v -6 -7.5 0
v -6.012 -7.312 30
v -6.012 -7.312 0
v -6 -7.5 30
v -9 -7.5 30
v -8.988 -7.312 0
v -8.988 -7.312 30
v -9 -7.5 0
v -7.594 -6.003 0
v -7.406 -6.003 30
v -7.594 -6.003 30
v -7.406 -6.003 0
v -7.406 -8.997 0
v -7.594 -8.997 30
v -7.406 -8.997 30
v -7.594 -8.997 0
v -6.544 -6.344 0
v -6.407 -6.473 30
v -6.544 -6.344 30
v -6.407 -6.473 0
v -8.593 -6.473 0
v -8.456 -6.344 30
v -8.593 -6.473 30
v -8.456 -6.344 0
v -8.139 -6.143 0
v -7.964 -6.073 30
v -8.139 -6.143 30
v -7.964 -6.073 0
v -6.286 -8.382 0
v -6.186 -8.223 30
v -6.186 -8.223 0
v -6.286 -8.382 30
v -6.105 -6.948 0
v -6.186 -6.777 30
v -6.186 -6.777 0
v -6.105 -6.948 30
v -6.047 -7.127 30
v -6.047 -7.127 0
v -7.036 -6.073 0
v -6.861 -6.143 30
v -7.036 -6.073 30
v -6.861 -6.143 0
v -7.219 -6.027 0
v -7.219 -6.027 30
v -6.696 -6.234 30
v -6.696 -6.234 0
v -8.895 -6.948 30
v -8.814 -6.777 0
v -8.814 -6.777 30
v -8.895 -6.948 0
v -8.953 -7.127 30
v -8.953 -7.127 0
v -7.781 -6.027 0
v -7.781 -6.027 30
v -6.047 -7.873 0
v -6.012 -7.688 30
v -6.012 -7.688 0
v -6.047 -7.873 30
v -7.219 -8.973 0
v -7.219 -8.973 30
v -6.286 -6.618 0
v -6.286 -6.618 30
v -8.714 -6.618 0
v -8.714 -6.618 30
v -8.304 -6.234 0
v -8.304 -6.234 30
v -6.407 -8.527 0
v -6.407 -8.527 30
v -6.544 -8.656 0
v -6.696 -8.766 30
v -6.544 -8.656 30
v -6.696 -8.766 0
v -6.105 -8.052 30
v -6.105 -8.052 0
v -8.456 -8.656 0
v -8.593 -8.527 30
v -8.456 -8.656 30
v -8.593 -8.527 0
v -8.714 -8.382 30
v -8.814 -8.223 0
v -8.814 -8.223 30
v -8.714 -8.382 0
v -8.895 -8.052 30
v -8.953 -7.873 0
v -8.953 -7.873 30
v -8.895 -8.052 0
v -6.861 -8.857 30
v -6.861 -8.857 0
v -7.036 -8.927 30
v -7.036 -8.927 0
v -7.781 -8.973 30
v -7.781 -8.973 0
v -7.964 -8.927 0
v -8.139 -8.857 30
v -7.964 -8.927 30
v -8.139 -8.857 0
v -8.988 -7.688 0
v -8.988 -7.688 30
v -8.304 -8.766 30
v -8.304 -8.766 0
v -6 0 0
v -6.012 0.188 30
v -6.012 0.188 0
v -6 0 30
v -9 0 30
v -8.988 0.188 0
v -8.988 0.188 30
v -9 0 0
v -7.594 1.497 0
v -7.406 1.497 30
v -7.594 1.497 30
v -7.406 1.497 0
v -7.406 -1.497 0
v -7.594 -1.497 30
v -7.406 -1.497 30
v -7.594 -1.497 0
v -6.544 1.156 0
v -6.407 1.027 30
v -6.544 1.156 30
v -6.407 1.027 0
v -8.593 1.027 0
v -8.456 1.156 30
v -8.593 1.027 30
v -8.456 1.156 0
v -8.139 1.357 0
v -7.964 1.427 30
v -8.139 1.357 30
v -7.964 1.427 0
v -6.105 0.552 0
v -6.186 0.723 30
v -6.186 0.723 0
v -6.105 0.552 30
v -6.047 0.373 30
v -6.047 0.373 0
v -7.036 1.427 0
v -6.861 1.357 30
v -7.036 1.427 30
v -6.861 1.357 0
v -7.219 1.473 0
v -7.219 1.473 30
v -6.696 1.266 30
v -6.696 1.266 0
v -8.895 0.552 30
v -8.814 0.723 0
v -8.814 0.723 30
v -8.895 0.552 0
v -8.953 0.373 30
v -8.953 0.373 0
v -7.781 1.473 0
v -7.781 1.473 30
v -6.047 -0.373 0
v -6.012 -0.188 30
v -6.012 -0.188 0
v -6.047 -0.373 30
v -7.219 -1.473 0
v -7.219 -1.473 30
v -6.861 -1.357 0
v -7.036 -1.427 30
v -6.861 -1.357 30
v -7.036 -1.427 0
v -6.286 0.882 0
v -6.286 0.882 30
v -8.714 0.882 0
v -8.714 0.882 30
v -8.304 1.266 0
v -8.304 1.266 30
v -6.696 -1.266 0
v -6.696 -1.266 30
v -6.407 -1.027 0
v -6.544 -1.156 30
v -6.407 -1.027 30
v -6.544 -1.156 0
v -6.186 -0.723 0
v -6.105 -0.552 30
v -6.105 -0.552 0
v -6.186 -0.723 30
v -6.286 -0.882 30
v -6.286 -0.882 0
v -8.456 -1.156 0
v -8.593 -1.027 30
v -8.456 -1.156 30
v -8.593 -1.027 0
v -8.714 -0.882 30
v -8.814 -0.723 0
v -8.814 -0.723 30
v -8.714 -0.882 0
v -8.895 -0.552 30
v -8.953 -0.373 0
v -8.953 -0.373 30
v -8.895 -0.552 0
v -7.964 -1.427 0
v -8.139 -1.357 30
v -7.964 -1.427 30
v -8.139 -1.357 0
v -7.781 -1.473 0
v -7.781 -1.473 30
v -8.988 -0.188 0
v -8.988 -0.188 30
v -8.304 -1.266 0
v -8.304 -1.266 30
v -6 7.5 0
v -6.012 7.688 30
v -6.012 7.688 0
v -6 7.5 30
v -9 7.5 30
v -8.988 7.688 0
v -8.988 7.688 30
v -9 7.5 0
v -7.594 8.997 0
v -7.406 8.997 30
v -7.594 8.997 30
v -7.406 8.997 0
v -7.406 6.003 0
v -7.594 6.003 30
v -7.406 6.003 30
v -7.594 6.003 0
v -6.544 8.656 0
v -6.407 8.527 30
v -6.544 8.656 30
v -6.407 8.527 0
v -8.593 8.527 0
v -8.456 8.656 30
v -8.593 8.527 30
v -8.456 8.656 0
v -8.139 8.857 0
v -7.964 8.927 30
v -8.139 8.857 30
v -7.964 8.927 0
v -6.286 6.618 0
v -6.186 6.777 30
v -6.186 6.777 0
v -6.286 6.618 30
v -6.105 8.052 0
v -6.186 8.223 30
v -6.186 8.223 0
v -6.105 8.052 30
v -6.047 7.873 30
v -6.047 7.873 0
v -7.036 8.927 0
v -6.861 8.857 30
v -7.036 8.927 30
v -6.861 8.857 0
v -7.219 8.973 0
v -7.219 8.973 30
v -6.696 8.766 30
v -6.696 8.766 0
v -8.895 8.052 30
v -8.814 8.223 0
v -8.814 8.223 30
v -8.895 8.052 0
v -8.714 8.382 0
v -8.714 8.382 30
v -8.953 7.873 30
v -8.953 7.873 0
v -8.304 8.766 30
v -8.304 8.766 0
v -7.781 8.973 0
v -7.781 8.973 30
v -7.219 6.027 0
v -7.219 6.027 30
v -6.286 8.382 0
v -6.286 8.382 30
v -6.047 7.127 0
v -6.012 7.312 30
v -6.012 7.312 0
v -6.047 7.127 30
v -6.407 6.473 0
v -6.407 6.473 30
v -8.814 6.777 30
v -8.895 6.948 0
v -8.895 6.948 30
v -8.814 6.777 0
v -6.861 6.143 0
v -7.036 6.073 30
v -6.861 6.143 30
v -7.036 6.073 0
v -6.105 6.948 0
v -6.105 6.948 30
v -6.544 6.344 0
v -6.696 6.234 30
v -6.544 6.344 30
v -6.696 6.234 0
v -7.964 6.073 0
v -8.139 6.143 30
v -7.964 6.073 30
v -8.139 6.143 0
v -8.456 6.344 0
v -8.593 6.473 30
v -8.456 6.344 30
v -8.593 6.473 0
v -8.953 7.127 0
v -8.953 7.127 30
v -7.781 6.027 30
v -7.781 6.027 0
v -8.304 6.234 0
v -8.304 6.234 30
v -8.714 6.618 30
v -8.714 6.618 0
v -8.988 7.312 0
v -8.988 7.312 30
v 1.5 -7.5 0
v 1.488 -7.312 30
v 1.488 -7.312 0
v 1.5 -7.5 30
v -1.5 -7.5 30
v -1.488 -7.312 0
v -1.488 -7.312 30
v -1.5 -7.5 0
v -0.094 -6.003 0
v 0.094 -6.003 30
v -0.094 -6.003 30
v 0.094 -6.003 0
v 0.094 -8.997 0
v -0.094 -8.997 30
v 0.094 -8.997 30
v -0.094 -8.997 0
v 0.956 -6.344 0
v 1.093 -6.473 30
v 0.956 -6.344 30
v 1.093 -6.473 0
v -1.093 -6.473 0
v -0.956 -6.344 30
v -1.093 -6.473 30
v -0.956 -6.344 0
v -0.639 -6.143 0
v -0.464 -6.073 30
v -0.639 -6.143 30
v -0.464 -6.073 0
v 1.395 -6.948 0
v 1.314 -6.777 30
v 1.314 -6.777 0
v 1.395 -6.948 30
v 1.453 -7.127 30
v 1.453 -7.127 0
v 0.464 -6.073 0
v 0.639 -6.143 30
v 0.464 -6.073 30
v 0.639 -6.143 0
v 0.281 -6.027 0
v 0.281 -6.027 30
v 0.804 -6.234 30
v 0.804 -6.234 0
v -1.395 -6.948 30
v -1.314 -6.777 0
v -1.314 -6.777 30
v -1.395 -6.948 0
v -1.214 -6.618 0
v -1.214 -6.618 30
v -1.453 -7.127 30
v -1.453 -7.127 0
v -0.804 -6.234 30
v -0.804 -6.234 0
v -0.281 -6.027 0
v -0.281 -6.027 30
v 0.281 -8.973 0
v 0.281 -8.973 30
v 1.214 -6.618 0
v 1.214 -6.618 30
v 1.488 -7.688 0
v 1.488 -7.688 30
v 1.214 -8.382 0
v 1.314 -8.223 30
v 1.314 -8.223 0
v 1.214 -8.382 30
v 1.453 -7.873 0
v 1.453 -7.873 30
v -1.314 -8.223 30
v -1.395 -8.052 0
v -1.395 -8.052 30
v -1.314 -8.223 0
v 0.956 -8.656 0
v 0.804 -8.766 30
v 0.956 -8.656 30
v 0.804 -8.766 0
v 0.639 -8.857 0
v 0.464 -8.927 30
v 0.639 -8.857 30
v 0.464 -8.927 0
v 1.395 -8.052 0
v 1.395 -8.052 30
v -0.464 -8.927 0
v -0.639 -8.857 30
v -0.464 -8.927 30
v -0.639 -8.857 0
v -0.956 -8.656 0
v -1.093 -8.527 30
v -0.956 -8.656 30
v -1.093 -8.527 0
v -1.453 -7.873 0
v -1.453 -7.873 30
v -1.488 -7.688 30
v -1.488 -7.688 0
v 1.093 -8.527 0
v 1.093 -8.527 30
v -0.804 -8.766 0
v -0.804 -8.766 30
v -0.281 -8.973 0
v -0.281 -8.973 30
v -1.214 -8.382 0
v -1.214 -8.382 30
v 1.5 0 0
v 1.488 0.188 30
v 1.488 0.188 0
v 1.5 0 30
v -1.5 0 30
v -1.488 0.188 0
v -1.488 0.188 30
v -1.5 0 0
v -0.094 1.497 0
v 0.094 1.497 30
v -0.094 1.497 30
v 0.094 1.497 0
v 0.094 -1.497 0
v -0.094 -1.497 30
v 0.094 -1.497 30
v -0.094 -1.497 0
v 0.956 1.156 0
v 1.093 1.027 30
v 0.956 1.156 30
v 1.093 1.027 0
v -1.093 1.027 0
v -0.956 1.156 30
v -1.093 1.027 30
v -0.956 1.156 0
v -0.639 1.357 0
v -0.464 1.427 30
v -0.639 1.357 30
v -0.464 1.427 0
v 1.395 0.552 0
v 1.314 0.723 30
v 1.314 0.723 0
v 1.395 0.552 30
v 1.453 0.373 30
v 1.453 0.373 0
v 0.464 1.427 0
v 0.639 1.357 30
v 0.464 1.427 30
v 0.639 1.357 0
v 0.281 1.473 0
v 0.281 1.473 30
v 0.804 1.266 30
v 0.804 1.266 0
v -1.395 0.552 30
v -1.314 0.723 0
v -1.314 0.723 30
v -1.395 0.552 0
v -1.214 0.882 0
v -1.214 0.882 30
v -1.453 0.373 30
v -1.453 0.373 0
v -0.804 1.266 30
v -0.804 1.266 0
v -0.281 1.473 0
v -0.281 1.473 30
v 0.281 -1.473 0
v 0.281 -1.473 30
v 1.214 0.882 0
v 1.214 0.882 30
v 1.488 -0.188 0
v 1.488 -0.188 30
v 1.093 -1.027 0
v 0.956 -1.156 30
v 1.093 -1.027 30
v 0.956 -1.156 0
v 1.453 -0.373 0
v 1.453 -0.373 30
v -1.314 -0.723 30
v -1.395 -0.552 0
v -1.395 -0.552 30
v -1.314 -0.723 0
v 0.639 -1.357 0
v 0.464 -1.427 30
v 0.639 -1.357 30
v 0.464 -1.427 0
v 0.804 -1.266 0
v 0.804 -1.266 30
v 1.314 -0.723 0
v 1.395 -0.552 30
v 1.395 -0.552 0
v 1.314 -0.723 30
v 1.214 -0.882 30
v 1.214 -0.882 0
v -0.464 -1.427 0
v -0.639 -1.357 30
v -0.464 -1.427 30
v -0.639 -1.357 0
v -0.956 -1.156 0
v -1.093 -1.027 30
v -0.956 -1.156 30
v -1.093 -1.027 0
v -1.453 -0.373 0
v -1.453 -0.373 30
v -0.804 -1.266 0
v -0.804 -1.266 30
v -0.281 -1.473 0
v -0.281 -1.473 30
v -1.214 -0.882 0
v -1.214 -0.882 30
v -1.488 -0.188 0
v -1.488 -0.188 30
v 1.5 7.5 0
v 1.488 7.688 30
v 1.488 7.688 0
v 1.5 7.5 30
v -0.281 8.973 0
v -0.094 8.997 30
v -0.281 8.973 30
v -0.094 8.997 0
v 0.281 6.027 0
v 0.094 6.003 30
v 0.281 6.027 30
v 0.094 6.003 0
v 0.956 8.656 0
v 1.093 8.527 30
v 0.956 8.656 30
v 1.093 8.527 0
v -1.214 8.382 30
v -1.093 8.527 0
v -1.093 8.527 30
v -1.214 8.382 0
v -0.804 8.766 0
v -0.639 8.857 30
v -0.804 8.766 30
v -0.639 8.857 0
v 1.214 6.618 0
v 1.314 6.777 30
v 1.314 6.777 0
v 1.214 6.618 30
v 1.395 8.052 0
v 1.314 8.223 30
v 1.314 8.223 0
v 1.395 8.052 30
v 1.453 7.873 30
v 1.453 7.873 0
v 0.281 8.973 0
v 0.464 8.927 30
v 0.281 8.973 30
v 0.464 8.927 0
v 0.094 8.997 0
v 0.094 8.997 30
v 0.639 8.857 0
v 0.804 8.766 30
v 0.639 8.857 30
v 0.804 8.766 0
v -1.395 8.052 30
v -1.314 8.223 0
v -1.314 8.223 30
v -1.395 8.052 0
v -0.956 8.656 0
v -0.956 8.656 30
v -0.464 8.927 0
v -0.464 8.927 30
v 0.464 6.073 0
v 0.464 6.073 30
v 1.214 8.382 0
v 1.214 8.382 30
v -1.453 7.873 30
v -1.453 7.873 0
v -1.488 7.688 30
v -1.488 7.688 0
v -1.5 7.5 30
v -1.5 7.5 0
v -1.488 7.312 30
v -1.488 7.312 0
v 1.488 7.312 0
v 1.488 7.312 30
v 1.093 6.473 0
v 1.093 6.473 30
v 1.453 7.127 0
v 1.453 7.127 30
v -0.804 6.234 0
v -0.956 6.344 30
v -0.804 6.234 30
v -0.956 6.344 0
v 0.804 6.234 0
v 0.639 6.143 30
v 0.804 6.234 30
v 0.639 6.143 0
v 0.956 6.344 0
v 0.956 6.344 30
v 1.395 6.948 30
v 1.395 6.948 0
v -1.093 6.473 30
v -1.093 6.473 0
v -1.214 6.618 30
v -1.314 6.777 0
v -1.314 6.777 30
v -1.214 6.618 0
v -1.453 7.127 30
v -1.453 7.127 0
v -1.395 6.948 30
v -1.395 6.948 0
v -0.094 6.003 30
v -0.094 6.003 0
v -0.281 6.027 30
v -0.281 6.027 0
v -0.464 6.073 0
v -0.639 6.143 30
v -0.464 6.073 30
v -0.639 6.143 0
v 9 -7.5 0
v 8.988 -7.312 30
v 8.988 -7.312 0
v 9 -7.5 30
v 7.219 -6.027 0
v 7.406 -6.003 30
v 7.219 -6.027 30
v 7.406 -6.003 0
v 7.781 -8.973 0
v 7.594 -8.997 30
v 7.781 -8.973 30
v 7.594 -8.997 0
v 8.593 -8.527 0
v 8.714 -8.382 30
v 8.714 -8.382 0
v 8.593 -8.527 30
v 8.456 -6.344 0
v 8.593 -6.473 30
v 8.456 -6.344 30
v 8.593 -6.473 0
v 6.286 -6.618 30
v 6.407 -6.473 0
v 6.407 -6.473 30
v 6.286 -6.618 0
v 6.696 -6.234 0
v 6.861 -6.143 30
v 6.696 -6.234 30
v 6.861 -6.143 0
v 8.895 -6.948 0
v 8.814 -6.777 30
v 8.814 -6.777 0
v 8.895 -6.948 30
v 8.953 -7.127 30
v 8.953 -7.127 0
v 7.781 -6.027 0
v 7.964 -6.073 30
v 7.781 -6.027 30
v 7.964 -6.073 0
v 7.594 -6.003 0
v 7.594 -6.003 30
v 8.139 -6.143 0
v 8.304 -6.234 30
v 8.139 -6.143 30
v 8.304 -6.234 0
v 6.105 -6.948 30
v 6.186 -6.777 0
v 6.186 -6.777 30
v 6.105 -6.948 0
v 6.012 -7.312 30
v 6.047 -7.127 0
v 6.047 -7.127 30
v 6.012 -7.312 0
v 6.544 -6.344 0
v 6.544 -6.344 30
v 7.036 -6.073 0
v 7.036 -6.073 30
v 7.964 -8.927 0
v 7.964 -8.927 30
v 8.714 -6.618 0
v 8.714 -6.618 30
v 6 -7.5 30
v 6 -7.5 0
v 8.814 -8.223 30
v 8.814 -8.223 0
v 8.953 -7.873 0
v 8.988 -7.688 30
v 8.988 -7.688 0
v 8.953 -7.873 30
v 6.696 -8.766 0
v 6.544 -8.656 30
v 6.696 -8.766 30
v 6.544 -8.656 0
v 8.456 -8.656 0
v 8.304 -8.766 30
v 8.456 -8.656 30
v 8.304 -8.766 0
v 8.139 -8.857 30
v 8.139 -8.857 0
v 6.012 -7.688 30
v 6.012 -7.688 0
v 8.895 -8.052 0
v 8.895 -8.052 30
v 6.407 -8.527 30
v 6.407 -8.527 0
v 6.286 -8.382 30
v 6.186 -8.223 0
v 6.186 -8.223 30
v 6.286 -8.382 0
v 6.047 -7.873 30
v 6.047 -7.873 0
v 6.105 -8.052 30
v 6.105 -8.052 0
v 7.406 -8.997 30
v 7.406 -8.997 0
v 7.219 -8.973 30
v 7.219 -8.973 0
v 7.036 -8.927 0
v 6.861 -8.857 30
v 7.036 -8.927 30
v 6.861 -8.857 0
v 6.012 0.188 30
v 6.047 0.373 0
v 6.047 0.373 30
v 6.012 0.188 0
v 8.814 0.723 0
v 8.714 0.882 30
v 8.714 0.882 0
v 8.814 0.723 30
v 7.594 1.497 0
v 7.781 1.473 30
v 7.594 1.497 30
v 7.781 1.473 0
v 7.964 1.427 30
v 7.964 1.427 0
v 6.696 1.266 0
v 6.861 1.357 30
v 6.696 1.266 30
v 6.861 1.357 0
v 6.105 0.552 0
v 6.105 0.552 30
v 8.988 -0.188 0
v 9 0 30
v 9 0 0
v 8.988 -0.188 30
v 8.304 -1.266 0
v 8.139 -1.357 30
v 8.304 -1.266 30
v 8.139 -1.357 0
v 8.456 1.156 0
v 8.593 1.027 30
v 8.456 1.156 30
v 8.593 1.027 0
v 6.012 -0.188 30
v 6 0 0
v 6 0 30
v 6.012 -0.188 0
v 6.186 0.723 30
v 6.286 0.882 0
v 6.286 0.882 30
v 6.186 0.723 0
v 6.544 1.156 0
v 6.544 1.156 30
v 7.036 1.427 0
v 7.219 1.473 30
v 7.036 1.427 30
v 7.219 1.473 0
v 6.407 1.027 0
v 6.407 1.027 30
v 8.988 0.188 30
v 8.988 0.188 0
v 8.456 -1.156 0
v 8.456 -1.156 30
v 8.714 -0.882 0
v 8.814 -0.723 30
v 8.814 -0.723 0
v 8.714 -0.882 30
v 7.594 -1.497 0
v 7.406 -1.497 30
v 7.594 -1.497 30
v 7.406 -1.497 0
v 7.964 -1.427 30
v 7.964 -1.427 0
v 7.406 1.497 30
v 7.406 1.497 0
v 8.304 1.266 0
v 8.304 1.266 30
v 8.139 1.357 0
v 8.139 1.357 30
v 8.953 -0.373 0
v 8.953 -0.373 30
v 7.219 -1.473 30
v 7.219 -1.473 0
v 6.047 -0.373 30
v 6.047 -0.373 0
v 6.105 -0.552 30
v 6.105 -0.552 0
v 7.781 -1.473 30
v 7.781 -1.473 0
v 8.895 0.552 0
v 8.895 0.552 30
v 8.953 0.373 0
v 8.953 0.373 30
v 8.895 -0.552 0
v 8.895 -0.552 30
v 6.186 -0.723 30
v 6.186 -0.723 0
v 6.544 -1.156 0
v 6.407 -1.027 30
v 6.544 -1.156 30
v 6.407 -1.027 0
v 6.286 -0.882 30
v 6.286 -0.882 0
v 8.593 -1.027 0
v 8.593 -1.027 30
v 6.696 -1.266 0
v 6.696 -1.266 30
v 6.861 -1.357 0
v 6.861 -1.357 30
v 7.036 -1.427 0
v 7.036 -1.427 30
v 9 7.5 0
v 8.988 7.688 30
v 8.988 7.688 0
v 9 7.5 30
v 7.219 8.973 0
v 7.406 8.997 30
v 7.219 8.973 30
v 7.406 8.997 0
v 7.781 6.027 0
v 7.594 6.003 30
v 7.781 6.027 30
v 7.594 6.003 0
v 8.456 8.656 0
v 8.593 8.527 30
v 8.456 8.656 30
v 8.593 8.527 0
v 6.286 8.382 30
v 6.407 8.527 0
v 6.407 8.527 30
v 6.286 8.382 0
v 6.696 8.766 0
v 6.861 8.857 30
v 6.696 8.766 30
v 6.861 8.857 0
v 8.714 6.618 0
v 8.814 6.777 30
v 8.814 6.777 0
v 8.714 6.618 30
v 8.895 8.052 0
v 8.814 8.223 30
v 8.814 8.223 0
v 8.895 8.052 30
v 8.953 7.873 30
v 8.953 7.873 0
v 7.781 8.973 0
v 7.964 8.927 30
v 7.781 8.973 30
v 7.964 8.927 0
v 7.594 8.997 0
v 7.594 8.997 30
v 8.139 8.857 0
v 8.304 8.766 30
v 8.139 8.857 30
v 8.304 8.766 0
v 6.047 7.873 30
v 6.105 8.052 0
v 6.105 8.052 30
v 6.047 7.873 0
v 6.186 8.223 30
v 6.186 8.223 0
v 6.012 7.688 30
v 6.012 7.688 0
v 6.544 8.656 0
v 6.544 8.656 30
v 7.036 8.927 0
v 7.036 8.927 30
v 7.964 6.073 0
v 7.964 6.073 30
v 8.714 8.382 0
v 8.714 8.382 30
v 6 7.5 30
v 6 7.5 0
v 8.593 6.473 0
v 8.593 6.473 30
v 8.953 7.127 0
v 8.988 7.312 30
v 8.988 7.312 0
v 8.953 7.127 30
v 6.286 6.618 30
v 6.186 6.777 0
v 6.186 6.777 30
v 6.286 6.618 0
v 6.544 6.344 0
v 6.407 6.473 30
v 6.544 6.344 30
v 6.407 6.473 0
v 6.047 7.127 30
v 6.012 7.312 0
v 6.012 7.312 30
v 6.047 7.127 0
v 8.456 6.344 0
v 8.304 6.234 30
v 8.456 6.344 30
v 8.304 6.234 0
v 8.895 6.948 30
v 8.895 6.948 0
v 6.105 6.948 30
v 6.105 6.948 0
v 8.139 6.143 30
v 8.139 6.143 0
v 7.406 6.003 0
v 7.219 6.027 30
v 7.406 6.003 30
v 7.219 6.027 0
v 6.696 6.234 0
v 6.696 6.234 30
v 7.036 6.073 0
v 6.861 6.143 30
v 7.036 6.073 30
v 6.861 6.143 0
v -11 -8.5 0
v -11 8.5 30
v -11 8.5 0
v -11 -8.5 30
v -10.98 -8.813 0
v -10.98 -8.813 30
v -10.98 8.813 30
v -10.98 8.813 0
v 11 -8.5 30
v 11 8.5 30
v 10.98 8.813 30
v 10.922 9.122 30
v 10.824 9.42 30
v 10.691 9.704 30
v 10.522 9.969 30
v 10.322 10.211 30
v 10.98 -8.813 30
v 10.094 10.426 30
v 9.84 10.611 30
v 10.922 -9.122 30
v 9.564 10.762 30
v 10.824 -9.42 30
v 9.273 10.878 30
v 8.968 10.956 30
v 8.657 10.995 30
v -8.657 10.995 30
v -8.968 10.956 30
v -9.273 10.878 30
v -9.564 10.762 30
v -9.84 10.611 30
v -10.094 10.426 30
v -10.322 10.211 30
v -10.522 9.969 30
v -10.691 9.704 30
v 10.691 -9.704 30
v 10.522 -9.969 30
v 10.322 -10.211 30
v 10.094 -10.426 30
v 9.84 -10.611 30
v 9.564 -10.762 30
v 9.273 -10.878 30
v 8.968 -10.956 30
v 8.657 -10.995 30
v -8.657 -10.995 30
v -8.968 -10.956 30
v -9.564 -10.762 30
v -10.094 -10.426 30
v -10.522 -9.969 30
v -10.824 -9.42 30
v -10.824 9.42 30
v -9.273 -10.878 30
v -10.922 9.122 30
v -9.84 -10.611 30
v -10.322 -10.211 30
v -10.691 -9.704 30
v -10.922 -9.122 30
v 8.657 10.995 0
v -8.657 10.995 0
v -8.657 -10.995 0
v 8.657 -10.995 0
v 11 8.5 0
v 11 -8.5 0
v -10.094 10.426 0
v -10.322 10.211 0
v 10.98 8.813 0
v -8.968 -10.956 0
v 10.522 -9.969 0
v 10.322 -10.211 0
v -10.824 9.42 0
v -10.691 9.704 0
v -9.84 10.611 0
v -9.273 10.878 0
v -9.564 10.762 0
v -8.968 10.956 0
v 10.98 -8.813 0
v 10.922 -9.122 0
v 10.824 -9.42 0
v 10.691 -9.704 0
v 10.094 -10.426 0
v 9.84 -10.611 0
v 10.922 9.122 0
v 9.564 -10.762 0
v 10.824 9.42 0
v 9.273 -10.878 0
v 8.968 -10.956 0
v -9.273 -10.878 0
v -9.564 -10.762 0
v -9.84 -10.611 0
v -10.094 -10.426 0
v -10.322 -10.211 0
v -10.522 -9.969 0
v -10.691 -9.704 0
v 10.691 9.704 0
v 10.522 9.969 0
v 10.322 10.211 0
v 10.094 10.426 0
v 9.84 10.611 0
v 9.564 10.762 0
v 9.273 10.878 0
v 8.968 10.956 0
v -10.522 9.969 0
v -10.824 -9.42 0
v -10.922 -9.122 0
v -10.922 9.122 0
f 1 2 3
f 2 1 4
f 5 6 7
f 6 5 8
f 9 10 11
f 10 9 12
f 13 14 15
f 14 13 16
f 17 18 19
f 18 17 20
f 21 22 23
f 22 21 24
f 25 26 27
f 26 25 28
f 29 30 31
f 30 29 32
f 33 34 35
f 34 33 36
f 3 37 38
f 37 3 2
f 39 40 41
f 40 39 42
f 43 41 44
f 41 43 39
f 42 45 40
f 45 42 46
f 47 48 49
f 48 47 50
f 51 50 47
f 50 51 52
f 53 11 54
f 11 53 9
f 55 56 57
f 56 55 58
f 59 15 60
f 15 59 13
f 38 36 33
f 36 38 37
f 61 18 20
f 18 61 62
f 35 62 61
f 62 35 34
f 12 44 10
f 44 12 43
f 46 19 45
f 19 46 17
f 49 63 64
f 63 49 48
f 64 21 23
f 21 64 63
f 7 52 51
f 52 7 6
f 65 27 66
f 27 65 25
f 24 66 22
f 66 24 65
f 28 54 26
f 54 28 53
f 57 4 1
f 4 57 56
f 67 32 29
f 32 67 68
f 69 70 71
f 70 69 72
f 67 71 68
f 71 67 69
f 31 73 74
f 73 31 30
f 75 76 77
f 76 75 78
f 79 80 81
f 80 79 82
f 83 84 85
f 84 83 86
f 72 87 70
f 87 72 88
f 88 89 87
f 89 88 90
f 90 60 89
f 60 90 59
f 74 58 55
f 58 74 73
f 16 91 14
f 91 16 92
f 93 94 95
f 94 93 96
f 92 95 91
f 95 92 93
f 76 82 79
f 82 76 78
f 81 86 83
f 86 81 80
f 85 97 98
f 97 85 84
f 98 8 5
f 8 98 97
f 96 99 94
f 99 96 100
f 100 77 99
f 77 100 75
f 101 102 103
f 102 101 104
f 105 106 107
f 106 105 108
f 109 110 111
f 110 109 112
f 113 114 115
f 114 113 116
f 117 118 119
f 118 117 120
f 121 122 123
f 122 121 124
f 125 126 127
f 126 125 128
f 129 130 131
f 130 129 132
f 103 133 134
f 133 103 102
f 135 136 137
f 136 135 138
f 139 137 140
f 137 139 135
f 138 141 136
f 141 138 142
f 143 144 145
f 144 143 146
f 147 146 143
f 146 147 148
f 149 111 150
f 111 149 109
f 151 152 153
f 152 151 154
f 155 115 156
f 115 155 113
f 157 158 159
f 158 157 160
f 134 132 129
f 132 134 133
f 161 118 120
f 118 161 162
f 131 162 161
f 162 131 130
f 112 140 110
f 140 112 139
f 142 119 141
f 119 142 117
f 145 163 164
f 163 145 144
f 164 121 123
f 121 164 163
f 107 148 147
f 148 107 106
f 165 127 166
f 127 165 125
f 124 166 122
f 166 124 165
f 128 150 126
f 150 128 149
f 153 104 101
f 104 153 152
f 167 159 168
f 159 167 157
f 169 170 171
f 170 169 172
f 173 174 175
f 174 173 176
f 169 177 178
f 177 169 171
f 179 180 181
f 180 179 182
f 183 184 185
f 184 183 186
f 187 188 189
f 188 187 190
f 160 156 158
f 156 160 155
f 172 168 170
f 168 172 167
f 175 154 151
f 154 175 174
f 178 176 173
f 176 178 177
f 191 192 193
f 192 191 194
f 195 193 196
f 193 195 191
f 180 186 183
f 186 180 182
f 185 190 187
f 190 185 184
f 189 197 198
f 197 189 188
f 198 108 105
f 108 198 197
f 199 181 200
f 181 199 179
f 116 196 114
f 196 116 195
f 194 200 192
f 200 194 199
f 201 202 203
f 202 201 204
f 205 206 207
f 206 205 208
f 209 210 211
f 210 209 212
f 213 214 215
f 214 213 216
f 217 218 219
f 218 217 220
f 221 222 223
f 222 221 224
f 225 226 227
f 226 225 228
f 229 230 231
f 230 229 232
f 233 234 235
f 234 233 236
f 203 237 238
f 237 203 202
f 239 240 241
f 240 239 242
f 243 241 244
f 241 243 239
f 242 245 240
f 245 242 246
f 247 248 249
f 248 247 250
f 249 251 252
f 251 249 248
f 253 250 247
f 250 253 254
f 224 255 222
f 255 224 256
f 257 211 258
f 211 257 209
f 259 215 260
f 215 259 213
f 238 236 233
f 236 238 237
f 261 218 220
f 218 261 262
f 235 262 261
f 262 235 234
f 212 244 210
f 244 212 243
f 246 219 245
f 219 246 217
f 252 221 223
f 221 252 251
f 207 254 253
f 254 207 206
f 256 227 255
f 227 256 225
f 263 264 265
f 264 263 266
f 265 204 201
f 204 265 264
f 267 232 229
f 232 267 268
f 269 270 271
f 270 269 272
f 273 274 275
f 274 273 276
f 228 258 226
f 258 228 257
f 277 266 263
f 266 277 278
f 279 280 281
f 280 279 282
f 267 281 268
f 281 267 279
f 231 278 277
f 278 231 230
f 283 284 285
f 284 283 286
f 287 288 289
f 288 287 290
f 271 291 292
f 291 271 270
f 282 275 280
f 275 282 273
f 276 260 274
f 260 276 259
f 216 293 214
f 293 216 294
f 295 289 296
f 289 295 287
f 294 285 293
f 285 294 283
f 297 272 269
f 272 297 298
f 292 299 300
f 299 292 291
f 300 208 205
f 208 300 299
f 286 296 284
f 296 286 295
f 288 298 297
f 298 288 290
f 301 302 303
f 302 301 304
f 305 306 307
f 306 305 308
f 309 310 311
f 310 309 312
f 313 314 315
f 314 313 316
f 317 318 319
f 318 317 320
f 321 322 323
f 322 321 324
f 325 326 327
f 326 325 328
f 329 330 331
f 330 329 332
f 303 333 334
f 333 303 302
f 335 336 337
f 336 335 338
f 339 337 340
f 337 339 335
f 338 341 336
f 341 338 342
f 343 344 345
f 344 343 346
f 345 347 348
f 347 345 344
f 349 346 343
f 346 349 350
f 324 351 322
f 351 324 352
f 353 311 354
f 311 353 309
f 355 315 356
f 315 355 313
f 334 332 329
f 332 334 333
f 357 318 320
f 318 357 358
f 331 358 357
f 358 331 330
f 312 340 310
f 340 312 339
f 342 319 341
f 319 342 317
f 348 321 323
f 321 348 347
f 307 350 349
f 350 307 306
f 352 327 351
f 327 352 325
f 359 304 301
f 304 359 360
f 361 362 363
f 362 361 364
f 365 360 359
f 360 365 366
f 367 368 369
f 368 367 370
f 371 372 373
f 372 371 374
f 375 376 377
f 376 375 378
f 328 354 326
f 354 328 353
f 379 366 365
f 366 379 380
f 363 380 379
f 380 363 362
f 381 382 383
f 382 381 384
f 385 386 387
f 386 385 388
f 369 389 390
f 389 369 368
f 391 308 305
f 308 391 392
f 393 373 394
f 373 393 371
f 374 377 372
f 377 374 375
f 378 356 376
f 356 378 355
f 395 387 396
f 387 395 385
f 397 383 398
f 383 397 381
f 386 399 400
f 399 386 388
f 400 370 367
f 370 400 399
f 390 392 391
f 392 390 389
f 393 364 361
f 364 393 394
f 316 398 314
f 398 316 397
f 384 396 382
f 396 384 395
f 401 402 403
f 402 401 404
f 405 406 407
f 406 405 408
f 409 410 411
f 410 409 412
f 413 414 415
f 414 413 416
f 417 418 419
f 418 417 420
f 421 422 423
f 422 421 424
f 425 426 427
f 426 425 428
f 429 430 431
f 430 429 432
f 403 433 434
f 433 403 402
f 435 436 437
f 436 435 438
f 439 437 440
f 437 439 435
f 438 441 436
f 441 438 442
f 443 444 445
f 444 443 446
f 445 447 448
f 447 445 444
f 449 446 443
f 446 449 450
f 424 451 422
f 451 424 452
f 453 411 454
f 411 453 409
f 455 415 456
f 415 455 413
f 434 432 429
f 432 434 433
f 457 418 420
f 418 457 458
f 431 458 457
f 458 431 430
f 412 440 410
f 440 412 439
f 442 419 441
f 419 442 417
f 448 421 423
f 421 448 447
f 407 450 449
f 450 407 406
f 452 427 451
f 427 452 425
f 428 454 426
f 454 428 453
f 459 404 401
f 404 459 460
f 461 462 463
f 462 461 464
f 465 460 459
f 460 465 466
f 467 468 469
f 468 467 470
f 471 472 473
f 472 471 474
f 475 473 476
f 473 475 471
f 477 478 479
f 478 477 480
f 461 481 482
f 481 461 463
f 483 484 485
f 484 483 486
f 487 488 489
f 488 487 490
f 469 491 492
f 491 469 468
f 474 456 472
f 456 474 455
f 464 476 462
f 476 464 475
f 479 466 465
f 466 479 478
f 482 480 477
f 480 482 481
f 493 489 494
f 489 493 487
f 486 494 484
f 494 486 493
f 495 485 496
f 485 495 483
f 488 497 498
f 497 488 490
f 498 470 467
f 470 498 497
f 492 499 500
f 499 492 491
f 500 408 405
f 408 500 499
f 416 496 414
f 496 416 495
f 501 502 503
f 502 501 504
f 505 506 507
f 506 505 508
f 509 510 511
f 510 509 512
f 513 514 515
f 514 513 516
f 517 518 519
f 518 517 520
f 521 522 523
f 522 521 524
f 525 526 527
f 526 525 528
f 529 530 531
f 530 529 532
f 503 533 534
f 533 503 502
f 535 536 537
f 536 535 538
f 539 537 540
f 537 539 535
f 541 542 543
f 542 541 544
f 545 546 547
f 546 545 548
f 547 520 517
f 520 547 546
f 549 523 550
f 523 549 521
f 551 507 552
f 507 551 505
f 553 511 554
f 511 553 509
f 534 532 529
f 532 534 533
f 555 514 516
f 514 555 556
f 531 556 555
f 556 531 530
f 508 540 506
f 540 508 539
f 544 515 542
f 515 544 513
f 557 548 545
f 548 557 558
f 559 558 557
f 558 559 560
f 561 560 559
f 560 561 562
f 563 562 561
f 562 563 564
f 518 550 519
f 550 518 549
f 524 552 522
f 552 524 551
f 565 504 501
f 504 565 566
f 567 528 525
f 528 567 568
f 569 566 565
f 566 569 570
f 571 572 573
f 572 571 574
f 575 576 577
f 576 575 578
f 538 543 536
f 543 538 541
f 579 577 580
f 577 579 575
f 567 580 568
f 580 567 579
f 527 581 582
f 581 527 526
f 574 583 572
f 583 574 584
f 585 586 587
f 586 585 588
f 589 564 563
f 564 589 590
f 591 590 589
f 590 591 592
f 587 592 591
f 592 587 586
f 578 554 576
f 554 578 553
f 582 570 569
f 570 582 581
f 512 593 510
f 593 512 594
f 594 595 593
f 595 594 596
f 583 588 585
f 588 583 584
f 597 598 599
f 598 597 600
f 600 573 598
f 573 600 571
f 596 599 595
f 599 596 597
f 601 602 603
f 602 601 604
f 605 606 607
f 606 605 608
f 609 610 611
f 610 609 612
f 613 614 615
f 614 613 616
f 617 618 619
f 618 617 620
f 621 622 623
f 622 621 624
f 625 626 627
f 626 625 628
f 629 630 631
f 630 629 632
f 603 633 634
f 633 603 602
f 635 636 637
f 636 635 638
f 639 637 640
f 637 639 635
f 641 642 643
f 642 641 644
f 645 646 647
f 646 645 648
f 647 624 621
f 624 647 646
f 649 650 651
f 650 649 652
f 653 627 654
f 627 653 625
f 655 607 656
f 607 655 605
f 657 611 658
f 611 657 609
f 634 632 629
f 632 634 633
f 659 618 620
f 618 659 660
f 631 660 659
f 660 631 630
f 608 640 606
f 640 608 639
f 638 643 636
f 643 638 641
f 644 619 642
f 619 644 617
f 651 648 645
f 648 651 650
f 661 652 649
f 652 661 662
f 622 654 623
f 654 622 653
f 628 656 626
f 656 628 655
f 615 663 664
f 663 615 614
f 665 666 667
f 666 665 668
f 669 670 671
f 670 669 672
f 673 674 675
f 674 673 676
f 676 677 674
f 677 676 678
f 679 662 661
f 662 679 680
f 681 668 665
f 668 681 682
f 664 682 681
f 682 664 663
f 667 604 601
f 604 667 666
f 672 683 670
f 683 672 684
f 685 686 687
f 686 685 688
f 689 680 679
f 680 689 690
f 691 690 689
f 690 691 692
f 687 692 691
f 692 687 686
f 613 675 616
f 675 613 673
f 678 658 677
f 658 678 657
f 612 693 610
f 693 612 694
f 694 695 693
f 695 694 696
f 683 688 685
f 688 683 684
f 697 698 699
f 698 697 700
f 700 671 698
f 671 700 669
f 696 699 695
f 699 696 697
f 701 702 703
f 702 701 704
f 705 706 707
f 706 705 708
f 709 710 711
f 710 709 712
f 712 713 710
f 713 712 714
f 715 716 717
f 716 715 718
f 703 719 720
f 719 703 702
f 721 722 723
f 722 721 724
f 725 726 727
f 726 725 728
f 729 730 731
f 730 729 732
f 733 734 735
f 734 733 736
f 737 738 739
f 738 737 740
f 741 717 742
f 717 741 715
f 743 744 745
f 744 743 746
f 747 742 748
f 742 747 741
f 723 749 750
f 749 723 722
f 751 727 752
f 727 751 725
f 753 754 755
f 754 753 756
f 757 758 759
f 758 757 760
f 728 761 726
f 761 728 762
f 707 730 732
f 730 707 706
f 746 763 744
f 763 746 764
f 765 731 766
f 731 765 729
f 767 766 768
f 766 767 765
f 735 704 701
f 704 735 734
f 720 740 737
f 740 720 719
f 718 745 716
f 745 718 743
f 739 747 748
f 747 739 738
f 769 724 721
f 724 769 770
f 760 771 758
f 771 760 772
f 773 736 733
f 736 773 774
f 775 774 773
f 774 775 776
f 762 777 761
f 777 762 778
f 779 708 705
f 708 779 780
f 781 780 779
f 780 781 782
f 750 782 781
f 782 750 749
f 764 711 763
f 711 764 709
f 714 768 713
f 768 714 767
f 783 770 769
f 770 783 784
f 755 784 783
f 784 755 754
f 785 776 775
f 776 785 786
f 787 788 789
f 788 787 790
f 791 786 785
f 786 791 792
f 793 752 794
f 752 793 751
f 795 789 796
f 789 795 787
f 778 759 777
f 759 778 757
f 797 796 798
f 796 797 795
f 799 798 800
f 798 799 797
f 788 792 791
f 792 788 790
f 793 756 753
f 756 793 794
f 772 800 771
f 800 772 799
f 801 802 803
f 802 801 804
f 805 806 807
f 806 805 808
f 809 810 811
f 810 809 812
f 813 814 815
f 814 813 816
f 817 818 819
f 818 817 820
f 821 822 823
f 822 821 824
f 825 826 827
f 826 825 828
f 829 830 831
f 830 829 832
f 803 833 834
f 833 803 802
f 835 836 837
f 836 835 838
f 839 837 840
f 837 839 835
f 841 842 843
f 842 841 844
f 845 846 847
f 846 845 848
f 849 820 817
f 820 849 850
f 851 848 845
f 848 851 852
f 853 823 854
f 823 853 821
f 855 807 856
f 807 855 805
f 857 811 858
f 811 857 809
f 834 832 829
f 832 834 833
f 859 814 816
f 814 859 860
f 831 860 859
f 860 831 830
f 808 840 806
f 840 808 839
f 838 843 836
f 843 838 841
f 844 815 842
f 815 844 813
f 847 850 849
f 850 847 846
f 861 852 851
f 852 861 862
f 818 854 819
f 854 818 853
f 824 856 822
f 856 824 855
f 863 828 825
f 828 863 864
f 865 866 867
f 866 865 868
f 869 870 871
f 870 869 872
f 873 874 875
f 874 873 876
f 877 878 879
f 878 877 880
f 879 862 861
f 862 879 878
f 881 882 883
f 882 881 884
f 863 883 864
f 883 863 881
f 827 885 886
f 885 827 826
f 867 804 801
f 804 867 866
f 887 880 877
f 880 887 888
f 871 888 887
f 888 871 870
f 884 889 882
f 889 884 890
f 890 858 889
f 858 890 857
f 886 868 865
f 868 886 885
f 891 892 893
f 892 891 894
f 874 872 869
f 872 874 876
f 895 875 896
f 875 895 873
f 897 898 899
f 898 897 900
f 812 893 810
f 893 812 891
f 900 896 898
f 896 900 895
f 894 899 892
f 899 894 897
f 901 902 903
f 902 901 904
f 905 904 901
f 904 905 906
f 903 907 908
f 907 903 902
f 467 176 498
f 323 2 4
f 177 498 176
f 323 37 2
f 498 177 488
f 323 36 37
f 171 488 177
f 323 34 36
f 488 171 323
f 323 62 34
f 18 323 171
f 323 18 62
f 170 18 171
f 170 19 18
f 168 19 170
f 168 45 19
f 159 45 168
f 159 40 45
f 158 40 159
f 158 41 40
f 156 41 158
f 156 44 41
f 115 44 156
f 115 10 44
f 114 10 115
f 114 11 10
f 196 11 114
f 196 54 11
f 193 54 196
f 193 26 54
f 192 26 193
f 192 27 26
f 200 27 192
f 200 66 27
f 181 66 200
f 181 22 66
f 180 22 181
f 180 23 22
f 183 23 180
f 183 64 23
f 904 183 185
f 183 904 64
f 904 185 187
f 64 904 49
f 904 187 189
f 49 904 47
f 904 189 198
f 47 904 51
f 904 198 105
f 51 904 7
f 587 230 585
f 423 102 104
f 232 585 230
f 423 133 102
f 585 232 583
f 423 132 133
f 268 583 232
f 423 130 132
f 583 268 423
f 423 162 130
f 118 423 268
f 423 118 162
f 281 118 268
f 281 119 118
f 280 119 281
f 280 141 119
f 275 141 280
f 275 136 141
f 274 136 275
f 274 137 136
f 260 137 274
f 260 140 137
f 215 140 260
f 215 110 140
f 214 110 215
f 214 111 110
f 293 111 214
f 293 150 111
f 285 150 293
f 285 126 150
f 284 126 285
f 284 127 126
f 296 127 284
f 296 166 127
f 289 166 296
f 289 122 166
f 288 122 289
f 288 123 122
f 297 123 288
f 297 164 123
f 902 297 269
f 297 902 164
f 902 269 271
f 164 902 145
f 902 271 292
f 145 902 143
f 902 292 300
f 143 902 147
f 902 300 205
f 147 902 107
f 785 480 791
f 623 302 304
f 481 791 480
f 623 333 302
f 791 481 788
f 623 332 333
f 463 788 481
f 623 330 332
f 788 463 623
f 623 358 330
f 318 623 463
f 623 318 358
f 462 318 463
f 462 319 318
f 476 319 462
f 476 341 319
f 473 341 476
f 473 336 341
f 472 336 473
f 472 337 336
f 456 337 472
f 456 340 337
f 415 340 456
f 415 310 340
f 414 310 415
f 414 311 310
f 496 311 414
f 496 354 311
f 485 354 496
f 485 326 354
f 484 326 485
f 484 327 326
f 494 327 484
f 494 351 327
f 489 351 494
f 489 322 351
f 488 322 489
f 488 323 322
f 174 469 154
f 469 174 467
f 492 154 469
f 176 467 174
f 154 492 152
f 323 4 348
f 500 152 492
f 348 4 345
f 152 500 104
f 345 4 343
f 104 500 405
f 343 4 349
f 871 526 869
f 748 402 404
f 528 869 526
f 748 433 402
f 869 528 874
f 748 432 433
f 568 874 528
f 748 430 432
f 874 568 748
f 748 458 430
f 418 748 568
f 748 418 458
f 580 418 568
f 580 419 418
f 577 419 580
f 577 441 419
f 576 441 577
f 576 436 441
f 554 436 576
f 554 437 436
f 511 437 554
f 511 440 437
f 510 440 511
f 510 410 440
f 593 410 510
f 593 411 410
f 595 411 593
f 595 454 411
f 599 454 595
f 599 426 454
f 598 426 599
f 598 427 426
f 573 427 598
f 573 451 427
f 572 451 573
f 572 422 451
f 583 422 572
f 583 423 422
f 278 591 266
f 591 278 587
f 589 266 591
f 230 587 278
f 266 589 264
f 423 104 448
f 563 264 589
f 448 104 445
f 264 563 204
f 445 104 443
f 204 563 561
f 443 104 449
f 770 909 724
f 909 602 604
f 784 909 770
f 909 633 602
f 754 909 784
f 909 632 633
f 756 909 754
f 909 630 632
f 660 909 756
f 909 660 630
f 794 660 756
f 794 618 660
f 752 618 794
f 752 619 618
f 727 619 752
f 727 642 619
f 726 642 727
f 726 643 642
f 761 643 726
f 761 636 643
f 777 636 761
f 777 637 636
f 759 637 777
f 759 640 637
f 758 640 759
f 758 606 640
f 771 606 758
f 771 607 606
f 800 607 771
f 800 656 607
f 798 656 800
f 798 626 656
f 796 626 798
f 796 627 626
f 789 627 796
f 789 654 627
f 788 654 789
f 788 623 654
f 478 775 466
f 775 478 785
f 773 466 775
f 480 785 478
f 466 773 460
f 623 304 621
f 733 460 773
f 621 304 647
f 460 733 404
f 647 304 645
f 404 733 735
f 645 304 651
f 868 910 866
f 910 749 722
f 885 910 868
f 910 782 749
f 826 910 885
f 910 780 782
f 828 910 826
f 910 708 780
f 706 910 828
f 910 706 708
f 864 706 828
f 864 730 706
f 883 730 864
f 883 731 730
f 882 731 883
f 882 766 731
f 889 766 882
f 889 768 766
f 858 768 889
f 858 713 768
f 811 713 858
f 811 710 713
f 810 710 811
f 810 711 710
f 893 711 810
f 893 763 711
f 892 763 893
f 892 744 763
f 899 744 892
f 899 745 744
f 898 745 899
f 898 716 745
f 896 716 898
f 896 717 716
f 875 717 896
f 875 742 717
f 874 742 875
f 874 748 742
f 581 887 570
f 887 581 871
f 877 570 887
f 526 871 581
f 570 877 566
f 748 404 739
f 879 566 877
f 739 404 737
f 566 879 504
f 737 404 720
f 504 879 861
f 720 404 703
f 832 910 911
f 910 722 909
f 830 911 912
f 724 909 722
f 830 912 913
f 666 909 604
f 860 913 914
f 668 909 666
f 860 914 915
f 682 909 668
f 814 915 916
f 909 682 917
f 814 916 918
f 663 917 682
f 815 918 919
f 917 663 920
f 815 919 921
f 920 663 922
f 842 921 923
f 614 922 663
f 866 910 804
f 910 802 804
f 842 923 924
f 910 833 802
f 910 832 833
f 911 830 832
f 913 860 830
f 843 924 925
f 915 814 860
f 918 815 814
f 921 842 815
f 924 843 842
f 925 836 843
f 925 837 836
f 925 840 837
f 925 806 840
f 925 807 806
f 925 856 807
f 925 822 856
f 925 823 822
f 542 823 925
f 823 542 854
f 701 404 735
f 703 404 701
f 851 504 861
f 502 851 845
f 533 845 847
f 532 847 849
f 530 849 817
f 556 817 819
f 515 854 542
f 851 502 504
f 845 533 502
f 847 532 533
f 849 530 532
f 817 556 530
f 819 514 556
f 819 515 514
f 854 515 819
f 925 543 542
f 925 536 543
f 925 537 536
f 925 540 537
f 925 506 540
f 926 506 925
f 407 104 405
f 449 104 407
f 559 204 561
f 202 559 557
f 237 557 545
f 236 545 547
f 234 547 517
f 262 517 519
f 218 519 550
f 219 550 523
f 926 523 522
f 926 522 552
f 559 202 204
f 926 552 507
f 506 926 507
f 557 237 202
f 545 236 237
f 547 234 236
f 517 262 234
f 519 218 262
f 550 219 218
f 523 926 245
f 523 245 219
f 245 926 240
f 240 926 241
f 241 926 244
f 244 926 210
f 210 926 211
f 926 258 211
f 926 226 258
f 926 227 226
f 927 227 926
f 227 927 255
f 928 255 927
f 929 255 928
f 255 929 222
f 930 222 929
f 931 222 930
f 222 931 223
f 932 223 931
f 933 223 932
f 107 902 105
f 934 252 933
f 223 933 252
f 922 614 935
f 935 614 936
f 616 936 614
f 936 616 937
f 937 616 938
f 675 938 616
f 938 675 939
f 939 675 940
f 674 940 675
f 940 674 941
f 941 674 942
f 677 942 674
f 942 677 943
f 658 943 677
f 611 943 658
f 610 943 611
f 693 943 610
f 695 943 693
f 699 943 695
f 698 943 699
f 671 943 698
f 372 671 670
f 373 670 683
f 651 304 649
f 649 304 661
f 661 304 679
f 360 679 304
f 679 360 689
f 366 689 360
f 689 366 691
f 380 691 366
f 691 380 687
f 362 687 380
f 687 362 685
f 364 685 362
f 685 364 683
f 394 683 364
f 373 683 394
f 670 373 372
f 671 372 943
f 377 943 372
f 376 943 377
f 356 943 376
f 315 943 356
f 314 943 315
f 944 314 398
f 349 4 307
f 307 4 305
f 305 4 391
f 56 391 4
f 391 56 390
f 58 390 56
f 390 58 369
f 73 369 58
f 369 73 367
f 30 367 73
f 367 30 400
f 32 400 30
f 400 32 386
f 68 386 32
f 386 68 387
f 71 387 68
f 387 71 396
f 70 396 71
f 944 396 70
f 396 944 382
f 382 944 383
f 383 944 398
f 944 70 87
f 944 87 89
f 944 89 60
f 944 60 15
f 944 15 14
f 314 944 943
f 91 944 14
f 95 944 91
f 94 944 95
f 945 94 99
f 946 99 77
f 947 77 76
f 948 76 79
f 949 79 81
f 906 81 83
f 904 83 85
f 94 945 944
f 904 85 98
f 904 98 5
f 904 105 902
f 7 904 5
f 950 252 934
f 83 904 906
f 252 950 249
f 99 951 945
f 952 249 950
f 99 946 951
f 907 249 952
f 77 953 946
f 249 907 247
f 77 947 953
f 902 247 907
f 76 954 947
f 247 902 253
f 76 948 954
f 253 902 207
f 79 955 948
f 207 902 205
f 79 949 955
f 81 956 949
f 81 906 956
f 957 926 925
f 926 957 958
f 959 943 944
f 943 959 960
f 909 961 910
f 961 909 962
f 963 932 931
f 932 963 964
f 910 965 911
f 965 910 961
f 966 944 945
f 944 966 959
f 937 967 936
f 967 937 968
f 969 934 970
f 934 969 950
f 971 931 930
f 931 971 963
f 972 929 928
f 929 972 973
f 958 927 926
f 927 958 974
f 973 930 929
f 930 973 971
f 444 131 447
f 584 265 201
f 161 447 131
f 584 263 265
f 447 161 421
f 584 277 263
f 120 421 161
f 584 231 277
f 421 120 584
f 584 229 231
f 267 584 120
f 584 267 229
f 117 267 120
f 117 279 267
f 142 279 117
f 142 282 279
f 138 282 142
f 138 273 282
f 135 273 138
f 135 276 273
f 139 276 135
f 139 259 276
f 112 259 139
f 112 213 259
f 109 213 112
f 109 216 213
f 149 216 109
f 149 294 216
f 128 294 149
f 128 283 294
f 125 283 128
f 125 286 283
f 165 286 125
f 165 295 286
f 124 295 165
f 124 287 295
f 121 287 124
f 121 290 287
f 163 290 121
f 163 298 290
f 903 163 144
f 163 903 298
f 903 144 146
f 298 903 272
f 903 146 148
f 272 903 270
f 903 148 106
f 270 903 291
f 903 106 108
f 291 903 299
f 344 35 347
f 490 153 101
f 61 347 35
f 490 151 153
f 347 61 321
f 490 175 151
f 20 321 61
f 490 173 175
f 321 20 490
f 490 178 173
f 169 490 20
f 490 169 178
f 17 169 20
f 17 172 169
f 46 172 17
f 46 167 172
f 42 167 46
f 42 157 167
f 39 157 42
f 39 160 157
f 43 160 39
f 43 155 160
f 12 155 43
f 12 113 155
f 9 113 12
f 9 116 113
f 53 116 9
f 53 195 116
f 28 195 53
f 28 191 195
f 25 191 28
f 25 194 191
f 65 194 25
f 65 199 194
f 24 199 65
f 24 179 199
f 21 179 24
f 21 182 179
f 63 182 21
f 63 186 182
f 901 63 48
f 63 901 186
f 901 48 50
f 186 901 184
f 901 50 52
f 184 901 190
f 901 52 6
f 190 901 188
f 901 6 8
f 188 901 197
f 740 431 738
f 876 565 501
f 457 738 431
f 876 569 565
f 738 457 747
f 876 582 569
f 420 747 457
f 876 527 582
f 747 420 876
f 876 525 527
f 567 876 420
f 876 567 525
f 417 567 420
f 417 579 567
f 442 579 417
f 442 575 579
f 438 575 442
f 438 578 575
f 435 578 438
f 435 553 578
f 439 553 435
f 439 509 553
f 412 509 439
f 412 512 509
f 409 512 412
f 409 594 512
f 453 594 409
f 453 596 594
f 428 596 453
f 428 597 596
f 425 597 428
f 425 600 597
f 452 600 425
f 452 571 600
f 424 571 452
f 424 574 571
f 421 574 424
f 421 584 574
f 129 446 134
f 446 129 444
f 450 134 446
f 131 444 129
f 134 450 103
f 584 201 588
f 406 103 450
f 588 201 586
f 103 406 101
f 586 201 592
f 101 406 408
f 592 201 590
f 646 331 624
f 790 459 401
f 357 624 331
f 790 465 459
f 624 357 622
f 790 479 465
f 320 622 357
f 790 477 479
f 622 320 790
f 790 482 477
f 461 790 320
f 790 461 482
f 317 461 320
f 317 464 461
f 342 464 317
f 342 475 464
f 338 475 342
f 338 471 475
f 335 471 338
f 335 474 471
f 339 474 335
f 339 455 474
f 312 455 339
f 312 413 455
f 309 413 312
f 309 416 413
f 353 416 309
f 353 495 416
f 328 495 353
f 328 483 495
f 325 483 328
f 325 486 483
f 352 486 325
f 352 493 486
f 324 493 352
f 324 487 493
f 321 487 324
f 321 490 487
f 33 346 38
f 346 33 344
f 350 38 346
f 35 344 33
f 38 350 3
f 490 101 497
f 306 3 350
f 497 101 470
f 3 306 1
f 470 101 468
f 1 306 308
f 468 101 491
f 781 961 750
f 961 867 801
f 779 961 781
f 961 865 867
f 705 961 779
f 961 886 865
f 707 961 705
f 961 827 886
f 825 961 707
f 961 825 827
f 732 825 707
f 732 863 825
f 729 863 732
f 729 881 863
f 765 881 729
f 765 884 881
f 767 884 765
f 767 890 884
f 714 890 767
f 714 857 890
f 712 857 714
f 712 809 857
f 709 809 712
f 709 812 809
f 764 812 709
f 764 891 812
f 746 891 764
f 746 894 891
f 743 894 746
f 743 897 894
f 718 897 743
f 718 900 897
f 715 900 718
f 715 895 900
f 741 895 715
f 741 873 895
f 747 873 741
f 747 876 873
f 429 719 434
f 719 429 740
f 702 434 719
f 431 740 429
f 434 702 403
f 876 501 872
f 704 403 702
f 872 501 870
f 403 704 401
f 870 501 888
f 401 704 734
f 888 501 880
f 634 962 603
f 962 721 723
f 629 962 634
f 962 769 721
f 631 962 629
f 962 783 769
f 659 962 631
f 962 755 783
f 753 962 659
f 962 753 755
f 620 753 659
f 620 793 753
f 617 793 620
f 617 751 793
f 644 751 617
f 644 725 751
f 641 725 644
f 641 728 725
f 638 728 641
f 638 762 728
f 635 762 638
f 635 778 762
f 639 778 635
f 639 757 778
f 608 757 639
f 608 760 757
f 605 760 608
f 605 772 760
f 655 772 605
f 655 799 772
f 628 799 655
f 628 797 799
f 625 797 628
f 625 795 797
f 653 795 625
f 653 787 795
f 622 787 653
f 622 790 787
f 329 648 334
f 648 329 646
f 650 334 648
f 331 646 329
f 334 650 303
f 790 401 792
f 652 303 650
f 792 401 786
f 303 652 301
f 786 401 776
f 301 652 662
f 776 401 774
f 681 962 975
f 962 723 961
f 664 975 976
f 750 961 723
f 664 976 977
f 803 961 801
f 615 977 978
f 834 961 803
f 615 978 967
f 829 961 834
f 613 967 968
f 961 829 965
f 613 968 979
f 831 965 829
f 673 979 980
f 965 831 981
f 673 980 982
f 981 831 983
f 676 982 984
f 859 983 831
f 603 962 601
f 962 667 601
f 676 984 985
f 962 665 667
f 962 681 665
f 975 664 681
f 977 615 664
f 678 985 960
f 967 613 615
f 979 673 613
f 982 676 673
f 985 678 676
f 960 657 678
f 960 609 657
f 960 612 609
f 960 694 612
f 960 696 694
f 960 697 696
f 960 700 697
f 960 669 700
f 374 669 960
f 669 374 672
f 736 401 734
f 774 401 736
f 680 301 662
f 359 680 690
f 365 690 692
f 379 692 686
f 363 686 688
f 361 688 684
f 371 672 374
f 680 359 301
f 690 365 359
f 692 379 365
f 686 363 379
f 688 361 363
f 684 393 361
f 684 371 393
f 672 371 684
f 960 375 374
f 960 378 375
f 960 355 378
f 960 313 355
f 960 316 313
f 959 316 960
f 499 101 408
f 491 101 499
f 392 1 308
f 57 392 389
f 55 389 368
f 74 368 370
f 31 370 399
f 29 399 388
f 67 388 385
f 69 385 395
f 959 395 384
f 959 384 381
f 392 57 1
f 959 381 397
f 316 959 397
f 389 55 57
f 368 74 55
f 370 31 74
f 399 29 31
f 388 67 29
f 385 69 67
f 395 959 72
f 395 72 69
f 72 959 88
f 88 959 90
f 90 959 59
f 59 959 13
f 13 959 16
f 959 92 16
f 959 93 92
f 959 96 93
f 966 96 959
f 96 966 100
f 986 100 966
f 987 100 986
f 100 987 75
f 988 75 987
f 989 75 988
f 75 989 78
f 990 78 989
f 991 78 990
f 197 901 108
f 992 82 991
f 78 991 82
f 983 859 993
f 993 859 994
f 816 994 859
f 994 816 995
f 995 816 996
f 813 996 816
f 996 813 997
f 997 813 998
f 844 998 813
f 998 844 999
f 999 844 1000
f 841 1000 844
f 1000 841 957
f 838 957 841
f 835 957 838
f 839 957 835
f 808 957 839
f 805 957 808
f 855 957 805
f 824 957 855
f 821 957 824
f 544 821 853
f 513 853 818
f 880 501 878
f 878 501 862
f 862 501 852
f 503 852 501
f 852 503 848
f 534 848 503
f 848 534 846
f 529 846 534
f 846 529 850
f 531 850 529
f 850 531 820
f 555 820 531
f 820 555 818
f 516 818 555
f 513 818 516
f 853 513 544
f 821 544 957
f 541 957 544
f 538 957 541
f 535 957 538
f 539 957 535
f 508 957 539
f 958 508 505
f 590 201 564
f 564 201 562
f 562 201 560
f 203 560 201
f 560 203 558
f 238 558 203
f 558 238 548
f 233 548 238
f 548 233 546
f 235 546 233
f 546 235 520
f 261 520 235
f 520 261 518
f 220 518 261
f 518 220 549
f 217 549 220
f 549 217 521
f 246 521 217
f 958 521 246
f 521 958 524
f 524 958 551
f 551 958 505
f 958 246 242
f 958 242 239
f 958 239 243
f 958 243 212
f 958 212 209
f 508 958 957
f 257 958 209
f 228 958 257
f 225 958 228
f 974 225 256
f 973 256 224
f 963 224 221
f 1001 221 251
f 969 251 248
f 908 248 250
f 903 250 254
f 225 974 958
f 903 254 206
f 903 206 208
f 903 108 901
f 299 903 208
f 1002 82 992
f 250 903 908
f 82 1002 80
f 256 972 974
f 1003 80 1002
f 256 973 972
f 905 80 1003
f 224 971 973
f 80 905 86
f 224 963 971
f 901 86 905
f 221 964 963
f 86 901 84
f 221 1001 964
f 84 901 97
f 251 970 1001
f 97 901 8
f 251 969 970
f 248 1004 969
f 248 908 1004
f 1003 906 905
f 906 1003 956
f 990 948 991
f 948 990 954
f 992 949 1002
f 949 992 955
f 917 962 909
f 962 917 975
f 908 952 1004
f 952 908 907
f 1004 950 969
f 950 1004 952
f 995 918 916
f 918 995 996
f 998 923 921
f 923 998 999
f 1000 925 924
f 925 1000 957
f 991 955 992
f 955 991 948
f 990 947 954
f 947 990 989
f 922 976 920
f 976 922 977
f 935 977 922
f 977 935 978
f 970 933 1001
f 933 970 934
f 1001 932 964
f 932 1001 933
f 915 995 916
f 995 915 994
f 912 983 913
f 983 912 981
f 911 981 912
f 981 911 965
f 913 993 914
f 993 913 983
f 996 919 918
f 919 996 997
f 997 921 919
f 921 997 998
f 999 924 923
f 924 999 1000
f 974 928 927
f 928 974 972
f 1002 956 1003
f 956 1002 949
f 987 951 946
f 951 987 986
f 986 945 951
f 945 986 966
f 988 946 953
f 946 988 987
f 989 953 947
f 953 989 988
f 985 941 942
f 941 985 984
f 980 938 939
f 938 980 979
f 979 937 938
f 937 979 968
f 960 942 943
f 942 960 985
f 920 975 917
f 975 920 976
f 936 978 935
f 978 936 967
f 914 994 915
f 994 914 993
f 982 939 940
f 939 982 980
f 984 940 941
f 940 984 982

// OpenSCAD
$fn = 50;


difference() {
	union() {
		translate(v = [0, 0, 0]) {
			rotate(a = [0, 0, 0]) {
				hull() {
					translate(v = [-8.5000000000, 8.5000000000, 0]) {
						rotate(a = [0, 0, 0]) {
							translate(v = [0, 0, 0]) {
								rotate(a = [0, 0, 0]) {
									cylinder(h = 30, r = 2.5000000000);
								}
							}
						}
					}
					translate(v = [8.5000000000, 8.5000000000, 0]) {
						rotate(a = [0, 0, 0]) {
							translate(v = [0, 0, 0]) {
								rotate(a = [0, 0, 0]) {
									cylinder(h = 30, r = 2.5000000000);
								}
							}
						}
					}
					translate(v = [-8.5000000000, -8.5000000000, 0]) {
						rotate(a = [0, 0, 0]) {
							translate(v = [0, 0, 0]) {
								rotate(a = [0, 0, 0]) {
									cylinder(h = 30, r = 2.5000000000);
								}
							}
						}
					}
					translate(v = [8.5000000000, -8.5000000000, 0]) {
						rotate(a = [0, 0, 0]) {
							translate(v = [0, 0, 0]) {
								rotate(a = [0, 0, 0]) {
									cylinder(h = 30, r = 2.5000000000);
								}
							}
						}
					}
				}
			}
		}
	}
	union() {
		translate(v = [-7.5000000000, -7.5000000000, 0]) {
			rotate(a = [0, 0, 0]) {
				translate(v = [0, 0, -50]) {
					rotate(a = [0, 0, 0]) {
						cylinder(h = 100, r = 1.5000000000);
					}
				}
			}
		}
		translate(v = [-7.5000000000, 0.0000000000, 0]) {
			rotate(a = [0, 0, 0]) {
				translate(v = [0, 0, -50]) {
					rotate(a = [0, 0, 0]) {
						cylinder(h = 100, r = 1.5000000000);
					}
				}
			}
		}
		translate(v = [-7.5000000000, 7.5000000000, 0]) {
			rotate(a = [0, 0, 0]) {
				translate(v = [0, 0, -50]) {
					rotate(a = [0, 0, 0]) {
						cylinder(h = 100, r = 1.5000000000);
					}
				}
			}
		}
		translate(v = [0.0000000000, -7.5000000000, 0]) {
			rotate(a = [0, 0, 0]) {
				translate(v = [0, 0, -50]) {
					rotate(a = [0, 0, 0]) {
						cylinder(h = 100, r = 1.5000000000);
					}
				}
			}
		}
		translate(v = [0.0000000000, 0.0000000000, 0]) {
			rotate(a = [0, 0, 0]) {
				translate(v = [0, 0, -50]) {
					rotate(a = [0, 0, 0]) {
						cylinder(h = 100, r = 1.5000000000);
					}
				}
			}
		}
		translate(v = [0.0000000000, 7.5000000000, 0]) {
			rotate(a = [0, 0, 0]) {
				translate(v = [0, 0, -50]) {
					rotate(a = [0, 0, 0]) {
						cylinder(h = 100, r = 1.5000000000);
					}
				}
			}
		}
		translate(v = [7.5000000000, -7.5000000000, 0]) {
			rotate(a = [0, 0, 0]) {
				translate(v = [0, 0, -50]) {
					rotate(a = [0, 0, 0]) {
						cylinder(h = 100, r = 1.5000000000);
					}
				}
			}
		}
		translate(v = [7.5000000000, 0.0000000000, 0]) {
			rotate(a = [0, 0, 0]) {
				translate(v = [0, 0, -50]) {
					rotate(a = [0, 0, 0]) {
						cylinder(h = 100, r = 1.5000000000);
					}
				}
			}
		}
		translate(v = [7.5000000000, 7.5000000000, 0]) {
			rotate(a = [0, 0, 0]) {
				translate(v = [0, 0, -50]) {
					rotate(a = [0, 0, 0]) {
						cylinder(h = 100, r = 1.5000000000);
					}
				}
			}
		}
	}
}
